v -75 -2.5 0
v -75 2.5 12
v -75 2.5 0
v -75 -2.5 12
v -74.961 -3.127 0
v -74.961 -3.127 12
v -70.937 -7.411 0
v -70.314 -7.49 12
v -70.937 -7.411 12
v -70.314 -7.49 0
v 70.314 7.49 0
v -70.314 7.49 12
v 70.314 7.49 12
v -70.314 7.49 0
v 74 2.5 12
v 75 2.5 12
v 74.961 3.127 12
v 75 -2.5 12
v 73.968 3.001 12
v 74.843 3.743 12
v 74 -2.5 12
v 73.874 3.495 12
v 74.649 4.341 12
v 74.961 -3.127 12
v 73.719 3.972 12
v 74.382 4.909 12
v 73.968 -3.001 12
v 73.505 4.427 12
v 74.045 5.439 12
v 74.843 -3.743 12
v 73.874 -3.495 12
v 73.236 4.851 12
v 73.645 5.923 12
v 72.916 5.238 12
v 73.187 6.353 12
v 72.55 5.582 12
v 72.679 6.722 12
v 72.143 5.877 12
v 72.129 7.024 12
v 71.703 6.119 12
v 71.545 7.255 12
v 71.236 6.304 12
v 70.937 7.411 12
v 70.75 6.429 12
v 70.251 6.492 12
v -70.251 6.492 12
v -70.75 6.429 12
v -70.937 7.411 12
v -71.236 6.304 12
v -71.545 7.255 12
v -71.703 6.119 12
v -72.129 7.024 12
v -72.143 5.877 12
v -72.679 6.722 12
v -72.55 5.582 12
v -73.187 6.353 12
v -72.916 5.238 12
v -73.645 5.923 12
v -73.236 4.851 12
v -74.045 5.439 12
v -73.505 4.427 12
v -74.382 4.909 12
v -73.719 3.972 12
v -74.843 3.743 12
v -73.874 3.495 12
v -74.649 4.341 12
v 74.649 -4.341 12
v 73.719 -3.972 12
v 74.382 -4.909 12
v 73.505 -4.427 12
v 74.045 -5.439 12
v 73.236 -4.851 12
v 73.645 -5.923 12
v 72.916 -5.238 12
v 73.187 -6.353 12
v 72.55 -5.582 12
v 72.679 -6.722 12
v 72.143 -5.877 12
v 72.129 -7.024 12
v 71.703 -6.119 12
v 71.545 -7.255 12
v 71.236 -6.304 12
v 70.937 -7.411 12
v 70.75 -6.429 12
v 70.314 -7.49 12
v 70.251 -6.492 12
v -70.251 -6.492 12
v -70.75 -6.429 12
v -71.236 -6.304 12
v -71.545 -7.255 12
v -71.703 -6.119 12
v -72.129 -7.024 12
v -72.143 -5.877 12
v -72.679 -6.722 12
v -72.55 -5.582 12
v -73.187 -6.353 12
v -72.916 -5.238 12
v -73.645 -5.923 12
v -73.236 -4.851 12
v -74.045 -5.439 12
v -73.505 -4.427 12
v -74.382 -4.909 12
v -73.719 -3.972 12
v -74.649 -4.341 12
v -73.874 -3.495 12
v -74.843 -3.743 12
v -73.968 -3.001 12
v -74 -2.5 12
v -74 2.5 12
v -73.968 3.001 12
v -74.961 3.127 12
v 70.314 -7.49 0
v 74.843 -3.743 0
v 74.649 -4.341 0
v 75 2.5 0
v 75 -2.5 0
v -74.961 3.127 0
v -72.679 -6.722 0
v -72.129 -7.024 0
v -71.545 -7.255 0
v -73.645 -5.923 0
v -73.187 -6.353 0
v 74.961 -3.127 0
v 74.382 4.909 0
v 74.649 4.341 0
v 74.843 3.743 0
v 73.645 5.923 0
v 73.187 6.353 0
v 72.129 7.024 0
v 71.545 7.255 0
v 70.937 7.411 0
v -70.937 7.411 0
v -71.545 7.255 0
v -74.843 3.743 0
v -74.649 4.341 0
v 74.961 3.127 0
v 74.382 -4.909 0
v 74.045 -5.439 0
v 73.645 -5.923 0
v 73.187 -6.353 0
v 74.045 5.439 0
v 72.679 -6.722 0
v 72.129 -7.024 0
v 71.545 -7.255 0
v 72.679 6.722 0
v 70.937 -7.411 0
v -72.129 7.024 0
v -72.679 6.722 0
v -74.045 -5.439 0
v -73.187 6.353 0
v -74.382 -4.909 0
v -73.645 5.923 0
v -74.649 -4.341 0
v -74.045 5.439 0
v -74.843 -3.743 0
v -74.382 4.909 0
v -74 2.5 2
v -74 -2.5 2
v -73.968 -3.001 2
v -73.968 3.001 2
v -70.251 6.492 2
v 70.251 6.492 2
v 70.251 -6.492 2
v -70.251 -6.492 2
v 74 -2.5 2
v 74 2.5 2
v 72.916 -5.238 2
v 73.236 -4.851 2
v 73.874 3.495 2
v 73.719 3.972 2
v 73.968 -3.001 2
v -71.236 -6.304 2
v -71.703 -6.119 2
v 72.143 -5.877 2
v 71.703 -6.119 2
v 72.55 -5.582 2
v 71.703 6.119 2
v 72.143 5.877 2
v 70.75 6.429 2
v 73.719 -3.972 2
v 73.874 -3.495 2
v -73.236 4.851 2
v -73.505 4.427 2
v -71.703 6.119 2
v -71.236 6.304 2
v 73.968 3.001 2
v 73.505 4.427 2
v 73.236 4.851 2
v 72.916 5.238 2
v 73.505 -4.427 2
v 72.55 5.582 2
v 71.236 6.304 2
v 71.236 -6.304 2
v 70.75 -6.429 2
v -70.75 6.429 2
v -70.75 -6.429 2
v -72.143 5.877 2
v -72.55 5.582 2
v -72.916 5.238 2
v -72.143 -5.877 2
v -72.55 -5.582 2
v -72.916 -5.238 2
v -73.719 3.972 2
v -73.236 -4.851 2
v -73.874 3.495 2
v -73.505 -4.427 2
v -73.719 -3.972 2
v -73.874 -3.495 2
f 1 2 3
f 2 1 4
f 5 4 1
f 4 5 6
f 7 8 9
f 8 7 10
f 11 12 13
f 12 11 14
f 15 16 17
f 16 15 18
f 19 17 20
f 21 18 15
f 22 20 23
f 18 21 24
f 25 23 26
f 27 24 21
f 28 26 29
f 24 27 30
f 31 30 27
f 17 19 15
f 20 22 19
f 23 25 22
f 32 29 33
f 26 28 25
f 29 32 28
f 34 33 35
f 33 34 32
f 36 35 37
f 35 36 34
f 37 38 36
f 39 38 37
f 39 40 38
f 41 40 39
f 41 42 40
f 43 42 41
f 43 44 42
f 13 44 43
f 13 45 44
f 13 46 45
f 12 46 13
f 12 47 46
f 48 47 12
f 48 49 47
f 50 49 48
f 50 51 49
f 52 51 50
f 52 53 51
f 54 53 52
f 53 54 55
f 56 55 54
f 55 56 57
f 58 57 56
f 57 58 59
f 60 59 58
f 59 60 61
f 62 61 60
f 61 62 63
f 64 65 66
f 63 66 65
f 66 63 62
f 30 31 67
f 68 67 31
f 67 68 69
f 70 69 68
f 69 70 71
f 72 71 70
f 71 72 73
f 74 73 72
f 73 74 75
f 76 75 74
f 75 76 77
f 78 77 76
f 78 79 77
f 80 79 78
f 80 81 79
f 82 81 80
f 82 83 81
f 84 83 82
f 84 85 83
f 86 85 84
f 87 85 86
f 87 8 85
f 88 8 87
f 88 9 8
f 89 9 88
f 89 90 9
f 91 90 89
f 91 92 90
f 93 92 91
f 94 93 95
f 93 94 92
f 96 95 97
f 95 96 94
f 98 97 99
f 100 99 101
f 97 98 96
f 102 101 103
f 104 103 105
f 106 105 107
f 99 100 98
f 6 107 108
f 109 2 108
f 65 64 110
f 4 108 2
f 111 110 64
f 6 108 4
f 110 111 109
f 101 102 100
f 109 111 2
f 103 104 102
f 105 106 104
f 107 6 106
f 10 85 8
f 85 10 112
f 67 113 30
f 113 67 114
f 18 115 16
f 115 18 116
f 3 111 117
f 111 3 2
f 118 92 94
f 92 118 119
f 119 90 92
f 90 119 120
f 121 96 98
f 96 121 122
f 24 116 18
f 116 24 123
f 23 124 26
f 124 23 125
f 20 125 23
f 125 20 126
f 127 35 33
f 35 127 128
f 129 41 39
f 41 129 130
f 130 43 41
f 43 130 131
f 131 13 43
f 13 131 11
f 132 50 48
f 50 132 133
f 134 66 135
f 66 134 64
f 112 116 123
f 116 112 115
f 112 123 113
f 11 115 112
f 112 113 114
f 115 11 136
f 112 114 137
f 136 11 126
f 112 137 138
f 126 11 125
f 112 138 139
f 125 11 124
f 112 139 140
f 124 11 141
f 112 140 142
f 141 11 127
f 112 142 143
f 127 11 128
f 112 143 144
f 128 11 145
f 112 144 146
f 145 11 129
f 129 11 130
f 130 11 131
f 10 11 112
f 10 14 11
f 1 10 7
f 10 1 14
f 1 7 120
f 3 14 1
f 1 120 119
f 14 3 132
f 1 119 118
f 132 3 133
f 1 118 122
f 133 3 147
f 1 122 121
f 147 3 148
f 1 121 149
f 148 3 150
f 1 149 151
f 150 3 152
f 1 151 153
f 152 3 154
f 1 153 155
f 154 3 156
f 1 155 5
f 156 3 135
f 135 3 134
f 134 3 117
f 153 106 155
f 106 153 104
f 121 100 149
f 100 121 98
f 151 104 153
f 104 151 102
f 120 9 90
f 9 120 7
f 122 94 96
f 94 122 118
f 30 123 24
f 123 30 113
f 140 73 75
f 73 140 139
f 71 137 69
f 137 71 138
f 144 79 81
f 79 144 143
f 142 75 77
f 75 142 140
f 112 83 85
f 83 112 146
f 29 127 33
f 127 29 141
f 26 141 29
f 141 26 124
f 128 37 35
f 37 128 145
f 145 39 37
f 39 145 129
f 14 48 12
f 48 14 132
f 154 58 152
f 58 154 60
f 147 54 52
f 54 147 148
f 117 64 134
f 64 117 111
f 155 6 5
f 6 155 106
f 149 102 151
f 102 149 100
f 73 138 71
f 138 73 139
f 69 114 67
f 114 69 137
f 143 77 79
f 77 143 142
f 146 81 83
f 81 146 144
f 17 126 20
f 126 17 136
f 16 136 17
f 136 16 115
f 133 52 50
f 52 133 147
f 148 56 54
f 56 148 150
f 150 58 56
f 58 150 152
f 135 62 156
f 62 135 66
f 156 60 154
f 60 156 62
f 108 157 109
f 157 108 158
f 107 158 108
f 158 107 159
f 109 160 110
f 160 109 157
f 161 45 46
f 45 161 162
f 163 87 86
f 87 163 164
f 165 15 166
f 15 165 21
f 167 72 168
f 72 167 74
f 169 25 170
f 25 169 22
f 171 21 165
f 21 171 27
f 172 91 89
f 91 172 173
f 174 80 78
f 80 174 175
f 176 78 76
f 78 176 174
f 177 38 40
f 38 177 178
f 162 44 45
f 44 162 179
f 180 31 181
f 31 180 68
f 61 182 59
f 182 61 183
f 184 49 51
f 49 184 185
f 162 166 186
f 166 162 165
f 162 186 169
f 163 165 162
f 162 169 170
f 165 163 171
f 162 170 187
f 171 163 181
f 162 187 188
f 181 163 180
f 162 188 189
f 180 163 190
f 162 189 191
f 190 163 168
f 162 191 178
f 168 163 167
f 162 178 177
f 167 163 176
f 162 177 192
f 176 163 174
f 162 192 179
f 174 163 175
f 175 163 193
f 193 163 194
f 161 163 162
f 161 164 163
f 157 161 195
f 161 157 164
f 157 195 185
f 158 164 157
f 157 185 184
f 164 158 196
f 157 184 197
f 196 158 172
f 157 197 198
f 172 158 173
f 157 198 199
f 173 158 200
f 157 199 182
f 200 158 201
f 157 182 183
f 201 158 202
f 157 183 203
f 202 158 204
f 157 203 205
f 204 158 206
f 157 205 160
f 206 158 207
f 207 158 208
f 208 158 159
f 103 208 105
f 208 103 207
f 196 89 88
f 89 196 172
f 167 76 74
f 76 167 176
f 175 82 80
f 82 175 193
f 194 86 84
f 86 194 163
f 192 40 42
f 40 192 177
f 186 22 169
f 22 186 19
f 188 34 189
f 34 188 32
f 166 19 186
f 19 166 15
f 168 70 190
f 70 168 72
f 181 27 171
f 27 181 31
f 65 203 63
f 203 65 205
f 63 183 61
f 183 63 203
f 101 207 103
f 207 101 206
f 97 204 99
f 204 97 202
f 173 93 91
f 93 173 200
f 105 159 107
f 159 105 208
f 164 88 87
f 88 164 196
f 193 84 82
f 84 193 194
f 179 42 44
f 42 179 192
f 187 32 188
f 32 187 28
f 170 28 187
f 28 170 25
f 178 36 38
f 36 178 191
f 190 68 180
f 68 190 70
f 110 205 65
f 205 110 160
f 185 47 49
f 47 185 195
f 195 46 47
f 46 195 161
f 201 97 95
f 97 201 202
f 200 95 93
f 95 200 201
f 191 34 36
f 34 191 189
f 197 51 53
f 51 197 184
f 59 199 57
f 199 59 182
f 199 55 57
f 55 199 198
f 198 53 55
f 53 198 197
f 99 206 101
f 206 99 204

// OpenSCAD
$fn = 50;


difference() {
	union() {
		hull() {
			translate(v = [-70.0000000000, 2.5000000000, 0]) {
				cylinder(h = 12, r = 5);
			}
			translate(v = [70.0000000000, 2.5000000000, 0]) {
				cylinder(h = 12, r = 5);
			}
			translate(v = [-70.0000000000, -2.5000000000, 0]) {
				cylinder(h = 12, r = 5);
			}
			translate(v = [70.0000000000, -2.5000000000, 0]) {
				cylinder(h = 12, r = 5);
			}
		}
	}
	union() {
		translate(v = [0, 0, 2]) {
			hull() {
				translate(v = [-70.0000000000, 2.5000000000, 0]) {
					cylinder(h = 10, r = 4);
				}
				translate(v = [70.0000000000, 2.5000000000, 0]) {
					cylinder(h = 10, r = 4);
				}
				translate(v = [-70.0000000000, -2.5000000000, 0]) {
					cylinder(h = 10, r = 4);
				}
				translate(v = [70.0000000000, -2.5000000000, 0]) {
					cylinder(h = 10, r = 4);
				}
			}
		}
	}
}
